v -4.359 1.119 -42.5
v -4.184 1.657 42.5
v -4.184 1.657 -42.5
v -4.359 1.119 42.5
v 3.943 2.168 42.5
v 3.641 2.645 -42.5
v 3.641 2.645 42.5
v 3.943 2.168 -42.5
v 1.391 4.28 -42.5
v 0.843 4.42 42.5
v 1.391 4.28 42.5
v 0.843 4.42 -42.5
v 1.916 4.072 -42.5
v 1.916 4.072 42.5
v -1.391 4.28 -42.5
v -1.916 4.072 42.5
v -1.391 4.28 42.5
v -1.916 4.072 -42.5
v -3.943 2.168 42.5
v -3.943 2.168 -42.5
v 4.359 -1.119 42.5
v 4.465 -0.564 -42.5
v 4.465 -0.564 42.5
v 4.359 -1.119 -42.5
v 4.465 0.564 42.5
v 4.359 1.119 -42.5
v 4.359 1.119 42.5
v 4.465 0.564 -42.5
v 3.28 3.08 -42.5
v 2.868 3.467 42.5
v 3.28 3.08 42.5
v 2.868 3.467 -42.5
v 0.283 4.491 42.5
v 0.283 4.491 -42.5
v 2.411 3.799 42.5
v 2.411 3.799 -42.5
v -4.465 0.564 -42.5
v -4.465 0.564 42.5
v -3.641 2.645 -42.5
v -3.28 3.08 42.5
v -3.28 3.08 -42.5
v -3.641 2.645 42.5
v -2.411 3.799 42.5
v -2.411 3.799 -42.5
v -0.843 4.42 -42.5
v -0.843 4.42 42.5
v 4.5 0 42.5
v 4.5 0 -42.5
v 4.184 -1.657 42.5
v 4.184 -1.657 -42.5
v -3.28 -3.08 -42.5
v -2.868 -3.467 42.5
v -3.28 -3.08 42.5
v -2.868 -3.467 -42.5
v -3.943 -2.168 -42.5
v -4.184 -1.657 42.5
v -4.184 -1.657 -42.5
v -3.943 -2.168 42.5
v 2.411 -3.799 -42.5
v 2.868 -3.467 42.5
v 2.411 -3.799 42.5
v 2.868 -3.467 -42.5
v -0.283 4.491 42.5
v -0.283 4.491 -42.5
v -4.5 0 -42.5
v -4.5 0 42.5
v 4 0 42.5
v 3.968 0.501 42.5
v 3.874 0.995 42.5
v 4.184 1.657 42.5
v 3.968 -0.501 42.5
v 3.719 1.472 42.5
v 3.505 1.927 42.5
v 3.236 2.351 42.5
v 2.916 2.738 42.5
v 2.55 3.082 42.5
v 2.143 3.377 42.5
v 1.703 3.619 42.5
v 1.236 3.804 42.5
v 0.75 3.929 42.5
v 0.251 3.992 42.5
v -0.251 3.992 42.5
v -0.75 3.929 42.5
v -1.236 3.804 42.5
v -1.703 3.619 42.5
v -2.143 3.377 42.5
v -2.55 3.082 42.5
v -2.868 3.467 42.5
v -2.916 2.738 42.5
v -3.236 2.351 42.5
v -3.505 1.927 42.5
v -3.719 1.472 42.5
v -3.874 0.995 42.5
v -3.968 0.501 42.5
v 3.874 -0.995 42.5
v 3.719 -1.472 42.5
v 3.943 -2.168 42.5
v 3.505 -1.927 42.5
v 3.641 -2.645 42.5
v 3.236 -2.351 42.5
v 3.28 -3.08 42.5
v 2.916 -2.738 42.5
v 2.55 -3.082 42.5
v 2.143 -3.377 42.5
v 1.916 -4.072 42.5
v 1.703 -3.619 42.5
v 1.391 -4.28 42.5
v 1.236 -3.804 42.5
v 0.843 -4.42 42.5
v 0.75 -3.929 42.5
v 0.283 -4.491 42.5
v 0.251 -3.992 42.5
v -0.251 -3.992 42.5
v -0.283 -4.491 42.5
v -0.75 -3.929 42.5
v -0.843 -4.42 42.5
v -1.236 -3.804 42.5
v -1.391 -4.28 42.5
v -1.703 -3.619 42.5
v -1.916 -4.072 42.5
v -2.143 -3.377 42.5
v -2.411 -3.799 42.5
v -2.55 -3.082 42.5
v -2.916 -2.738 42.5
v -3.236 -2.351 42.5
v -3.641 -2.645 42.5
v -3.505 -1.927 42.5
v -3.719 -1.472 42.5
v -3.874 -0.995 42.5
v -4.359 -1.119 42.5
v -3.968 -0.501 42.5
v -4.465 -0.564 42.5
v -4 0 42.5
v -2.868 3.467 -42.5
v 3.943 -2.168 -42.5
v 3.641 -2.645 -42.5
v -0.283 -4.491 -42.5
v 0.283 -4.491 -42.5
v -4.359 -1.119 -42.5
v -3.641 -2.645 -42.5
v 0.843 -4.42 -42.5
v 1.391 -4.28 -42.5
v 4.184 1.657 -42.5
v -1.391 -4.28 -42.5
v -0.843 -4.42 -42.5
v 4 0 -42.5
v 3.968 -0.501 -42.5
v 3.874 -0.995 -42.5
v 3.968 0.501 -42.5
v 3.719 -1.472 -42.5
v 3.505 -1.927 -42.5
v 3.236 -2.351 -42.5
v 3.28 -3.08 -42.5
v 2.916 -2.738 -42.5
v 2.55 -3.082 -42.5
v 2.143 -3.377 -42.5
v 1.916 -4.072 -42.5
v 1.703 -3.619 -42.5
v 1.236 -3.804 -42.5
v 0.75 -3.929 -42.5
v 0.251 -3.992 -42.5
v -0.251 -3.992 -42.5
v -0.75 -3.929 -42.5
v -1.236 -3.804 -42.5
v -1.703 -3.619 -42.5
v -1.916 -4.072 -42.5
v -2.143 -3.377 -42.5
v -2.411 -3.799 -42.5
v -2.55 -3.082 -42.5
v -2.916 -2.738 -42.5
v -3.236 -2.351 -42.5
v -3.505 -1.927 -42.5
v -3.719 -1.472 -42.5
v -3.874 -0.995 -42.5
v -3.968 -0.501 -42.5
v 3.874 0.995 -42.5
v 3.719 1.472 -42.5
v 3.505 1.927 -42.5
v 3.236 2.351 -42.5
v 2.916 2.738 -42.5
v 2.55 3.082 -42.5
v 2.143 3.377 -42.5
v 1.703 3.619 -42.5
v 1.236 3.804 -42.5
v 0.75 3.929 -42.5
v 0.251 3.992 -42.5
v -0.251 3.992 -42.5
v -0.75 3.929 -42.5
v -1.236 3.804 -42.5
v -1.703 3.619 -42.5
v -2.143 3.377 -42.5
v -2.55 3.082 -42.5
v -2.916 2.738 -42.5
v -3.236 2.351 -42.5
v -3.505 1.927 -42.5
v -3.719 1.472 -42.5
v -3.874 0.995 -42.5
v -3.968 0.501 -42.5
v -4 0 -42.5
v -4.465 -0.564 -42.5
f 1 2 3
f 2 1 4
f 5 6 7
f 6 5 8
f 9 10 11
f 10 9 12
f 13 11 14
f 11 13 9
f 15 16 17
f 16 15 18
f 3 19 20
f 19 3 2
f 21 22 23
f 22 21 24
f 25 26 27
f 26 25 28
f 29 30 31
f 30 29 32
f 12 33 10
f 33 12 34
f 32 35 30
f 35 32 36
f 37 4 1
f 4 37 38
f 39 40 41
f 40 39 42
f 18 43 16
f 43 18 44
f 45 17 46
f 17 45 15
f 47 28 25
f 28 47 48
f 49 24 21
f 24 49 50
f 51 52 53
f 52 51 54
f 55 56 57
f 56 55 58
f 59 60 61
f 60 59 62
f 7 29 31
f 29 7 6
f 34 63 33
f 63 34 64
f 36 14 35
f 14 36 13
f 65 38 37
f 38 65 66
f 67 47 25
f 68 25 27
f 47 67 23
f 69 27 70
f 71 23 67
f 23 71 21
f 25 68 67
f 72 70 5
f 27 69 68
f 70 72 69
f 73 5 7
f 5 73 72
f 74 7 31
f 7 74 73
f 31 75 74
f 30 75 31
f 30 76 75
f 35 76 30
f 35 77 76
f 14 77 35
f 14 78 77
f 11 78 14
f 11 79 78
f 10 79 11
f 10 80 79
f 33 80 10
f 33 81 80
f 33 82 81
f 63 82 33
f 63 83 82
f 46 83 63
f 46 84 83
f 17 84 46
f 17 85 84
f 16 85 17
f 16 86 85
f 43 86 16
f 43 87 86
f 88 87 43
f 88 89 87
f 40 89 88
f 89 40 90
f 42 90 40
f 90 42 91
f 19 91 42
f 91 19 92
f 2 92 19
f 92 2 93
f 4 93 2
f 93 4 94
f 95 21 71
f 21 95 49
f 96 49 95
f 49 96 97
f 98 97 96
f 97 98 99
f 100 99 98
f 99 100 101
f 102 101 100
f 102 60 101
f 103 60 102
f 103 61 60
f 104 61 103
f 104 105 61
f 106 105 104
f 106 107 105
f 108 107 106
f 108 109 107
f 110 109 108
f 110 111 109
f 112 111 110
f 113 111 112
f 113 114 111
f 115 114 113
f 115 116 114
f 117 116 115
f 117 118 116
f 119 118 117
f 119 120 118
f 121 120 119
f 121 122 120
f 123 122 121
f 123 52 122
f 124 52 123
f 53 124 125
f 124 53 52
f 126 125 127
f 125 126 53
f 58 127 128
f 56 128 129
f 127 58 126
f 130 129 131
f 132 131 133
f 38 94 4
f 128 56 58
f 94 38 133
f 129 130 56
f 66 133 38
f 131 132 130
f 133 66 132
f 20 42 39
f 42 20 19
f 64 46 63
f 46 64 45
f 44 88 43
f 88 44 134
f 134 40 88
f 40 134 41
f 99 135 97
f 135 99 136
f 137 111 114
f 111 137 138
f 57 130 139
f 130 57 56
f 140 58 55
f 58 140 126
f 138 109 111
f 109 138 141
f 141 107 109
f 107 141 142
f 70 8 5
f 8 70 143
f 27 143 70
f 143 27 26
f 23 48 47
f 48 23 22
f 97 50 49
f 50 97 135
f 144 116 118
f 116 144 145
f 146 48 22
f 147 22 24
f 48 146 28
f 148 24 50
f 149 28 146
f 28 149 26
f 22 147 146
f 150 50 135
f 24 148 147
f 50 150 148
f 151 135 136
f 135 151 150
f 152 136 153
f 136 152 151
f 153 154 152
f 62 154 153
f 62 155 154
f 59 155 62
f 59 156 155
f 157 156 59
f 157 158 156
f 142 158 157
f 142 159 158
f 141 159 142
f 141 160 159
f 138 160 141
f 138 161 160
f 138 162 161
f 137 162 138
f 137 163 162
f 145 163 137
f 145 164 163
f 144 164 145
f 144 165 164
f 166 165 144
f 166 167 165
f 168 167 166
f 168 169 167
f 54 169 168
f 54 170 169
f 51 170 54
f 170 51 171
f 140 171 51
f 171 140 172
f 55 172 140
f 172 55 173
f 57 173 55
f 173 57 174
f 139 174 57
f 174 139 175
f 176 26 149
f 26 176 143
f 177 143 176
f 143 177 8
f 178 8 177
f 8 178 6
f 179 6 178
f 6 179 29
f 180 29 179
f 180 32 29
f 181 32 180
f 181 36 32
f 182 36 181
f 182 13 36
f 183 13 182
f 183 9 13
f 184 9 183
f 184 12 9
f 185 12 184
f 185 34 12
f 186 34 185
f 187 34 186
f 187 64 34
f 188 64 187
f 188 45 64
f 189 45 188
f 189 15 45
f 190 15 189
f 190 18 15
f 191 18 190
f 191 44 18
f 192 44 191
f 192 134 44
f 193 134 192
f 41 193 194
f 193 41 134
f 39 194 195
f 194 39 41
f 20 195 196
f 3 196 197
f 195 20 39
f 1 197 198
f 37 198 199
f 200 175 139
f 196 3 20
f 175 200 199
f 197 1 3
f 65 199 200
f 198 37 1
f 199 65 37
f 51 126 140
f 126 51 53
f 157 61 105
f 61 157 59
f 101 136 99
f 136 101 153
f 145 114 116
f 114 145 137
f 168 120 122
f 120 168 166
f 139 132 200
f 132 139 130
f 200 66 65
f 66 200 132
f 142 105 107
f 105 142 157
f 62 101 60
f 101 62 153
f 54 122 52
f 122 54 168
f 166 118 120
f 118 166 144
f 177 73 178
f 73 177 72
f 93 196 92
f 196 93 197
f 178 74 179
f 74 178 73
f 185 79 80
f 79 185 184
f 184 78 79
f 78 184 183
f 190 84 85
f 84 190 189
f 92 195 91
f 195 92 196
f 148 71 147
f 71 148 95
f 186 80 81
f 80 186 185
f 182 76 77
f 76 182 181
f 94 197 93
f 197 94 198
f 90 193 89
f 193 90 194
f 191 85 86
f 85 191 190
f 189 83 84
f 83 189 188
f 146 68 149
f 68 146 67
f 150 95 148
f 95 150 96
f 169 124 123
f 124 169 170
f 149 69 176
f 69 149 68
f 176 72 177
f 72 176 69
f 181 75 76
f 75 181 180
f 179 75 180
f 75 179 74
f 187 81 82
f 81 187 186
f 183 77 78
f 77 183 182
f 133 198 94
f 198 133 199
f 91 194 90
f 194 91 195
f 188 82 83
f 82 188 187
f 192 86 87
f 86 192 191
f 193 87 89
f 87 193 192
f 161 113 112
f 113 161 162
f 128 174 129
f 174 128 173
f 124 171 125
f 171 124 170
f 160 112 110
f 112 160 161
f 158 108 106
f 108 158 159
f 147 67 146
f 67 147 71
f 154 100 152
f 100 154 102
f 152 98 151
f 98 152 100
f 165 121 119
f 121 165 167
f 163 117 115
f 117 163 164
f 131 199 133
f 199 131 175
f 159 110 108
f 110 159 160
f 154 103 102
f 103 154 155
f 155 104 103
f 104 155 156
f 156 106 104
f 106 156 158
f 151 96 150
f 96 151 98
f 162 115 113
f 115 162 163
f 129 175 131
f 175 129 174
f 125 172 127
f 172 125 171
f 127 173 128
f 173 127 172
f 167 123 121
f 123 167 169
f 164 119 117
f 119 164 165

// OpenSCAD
$fn = 50;


difference() {
	union() {
		translate(v = [0, 0, -42.5000000000]) {
			cylinder(h = 85, r = 4.5000000000);
		}
	}
	union() {
		translate(v = [0, 0, -100.0000000000]) {
			cylinder(h = 200, r = 4);
		}
	}
}
